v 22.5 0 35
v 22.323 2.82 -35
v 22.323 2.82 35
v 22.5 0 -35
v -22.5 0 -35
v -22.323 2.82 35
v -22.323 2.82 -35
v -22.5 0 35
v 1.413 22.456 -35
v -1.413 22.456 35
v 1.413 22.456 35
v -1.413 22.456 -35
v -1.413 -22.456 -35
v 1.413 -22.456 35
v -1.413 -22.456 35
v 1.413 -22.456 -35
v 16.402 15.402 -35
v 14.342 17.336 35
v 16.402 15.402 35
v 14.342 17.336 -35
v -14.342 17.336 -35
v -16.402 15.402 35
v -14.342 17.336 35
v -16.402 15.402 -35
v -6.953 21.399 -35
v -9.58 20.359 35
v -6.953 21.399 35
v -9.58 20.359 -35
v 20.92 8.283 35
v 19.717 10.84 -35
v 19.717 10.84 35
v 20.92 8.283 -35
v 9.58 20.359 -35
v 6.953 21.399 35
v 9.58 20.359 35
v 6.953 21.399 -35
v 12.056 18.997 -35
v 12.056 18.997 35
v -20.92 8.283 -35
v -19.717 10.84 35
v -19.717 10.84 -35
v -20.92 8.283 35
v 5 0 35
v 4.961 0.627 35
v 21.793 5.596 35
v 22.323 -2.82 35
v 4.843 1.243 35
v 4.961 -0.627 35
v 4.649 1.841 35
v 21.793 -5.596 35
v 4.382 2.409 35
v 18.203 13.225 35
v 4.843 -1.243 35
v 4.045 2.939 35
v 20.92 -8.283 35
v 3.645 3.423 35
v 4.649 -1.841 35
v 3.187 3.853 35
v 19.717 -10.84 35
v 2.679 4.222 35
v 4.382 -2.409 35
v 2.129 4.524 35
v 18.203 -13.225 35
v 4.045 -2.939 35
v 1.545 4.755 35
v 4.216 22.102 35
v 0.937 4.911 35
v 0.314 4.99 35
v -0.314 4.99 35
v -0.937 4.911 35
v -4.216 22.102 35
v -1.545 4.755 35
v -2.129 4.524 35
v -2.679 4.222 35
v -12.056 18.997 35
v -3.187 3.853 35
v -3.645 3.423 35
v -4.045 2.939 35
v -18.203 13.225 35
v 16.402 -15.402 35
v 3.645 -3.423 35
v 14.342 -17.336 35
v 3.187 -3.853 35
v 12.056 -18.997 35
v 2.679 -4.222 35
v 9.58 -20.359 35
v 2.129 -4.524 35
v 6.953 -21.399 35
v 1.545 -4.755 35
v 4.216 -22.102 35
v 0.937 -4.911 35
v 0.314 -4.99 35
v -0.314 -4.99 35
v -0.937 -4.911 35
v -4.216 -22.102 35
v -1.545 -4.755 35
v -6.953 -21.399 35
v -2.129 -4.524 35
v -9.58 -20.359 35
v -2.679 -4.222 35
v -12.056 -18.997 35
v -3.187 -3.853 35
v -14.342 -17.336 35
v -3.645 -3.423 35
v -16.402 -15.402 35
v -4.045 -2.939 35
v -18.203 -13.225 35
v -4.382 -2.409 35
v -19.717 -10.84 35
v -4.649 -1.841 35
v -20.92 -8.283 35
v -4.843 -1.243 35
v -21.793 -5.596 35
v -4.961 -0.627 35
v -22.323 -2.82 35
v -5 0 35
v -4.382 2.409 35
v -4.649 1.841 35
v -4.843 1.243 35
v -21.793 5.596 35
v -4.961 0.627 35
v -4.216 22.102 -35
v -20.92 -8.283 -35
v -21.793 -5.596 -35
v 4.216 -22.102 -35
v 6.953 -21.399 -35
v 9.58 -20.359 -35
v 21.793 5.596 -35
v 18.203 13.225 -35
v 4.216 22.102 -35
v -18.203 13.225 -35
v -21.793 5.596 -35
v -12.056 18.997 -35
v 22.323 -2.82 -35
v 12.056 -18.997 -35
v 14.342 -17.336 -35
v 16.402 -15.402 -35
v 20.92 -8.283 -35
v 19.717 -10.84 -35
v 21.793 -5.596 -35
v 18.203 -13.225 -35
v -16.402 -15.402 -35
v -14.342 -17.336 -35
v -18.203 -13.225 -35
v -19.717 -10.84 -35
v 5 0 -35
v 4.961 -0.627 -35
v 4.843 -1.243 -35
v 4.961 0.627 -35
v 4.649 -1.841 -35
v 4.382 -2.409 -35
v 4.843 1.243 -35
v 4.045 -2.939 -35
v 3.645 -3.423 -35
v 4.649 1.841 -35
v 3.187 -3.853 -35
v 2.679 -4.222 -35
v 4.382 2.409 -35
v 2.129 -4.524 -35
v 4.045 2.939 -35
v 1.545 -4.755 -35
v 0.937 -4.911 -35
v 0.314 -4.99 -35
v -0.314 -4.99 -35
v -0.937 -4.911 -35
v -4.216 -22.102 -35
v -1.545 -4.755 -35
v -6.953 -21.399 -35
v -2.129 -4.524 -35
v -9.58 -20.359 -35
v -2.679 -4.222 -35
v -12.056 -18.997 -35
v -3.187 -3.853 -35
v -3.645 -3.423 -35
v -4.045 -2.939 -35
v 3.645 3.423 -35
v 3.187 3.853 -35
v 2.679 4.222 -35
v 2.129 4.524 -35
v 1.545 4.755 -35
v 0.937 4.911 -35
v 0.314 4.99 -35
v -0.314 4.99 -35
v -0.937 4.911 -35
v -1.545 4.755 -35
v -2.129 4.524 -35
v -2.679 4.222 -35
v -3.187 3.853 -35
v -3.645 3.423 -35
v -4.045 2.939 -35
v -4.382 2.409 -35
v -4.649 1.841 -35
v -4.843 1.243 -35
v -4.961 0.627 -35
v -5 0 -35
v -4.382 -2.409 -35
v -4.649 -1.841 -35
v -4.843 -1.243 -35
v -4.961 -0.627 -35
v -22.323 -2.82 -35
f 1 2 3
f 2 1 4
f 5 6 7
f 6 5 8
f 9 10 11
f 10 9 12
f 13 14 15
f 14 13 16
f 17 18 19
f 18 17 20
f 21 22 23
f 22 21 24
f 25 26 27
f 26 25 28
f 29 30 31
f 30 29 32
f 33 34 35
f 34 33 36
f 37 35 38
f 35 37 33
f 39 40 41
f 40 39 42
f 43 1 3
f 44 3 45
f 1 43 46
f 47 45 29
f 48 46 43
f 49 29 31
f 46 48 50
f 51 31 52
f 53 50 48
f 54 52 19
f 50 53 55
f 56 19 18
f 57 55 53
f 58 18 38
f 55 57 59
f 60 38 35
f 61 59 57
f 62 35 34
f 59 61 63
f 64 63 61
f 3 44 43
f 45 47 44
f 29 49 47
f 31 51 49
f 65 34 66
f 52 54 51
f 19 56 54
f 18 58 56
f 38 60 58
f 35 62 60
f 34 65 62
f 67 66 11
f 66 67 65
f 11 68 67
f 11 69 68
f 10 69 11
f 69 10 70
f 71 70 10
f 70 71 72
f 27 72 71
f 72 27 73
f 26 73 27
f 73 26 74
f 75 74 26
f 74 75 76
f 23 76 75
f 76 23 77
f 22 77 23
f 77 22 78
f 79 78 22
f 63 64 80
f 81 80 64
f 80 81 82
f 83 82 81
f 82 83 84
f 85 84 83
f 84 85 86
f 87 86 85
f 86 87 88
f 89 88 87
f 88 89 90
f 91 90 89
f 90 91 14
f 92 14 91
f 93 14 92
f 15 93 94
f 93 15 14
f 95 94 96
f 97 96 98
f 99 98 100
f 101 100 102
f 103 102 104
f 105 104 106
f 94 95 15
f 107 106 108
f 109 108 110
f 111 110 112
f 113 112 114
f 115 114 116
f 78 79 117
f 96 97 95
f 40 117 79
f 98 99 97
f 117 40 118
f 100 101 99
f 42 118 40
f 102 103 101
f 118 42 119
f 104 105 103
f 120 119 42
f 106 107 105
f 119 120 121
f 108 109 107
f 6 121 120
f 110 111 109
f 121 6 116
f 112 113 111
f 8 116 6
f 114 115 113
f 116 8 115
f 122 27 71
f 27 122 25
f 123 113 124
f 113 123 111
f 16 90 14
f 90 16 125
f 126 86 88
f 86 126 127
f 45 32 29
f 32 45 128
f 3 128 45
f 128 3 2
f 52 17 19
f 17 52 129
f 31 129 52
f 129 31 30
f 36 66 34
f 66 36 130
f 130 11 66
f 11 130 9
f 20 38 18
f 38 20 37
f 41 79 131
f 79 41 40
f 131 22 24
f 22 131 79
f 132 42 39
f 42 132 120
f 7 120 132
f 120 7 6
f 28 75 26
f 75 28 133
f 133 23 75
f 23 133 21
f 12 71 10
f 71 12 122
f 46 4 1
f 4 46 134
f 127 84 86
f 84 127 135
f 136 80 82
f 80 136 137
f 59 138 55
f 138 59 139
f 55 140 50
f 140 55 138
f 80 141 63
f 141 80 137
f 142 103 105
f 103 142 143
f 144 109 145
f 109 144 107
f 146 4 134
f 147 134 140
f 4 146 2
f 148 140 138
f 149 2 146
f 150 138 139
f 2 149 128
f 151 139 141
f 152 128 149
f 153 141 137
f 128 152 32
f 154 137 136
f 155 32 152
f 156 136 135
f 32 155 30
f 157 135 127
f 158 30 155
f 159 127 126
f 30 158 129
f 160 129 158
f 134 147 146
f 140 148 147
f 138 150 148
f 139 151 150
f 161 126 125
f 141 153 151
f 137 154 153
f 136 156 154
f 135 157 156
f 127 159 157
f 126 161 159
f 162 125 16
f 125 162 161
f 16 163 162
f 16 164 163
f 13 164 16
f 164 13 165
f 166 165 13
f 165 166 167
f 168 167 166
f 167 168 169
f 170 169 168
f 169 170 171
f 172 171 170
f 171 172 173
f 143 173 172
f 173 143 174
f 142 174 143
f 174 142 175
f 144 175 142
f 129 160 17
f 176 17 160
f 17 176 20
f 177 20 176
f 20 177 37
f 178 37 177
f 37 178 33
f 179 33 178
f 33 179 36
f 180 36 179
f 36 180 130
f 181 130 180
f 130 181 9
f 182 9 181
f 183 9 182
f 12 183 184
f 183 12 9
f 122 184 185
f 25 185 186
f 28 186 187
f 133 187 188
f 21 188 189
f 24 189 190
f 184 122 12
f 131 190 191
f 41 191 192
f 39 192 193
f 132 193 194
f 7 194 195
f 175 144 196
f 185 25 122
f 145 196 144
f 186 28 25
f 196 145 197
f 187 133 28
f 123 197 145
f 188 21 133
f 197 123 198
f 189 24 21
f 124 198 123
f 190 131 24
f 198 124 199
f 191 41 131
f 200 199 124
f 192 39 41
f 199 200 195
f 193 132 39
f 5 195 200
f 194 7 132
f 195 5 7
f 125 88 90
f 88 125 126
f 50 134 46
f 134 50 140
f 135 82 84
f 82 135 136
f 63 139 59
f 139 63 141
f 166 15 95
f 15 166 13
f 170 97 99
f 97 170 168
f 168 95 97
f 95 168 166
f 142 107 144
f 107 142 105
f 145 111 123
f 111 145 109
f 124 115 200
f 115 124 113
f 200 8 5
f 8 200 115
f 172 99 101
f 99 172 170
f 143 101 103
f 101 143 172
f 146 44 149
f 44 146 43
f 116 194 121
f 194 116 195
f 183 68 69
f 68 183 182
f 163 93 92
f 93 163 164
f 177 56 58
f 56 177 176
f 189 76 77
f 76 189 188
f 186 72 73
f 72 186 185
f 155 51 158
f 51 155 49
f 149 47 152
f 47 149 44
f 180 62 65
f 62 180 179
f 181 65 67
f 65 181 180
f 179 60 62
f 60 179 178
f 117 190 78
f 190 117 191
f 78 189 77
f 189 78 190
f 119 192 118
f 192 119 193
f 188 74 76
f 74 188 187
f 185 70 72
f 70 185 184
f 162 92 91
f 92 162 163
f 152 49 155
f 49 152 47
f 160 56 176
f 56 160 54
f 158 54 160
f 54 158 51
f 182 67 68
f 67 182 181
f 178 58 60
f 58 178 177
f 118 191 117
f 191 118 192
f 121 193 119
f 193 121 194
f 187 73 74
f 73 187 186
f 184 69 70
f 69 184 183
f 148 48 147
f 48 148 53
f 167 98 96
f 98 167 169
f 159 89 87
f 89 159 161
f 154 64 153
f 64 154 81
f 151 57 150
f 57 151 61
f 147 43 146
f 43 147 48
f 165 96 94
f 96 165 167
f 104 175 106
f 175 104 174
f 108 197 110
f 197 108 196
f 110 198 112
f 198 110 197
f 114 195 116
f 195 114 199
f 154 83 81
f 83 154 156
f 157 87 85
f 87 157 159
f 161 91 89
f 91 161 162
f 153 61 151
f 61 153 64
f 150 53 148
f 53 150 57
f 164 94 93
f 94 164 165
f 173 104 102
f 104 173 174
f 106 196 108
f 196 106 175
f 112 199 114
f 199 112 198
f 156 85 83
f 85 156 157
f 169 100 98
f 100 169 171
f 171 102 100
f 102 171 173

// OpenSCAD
$fn = 50;


difference() {
	union() {
		translate(v = [0, 0, -35.0000000000]) {
			cylinder(h = 70, r = 22.5000000000);
		}
	}
	union() {
		translate(v = [0, 0, -100.0000000000]) {
			cylinder(h = 200, r = 5);
		}
	}
}
